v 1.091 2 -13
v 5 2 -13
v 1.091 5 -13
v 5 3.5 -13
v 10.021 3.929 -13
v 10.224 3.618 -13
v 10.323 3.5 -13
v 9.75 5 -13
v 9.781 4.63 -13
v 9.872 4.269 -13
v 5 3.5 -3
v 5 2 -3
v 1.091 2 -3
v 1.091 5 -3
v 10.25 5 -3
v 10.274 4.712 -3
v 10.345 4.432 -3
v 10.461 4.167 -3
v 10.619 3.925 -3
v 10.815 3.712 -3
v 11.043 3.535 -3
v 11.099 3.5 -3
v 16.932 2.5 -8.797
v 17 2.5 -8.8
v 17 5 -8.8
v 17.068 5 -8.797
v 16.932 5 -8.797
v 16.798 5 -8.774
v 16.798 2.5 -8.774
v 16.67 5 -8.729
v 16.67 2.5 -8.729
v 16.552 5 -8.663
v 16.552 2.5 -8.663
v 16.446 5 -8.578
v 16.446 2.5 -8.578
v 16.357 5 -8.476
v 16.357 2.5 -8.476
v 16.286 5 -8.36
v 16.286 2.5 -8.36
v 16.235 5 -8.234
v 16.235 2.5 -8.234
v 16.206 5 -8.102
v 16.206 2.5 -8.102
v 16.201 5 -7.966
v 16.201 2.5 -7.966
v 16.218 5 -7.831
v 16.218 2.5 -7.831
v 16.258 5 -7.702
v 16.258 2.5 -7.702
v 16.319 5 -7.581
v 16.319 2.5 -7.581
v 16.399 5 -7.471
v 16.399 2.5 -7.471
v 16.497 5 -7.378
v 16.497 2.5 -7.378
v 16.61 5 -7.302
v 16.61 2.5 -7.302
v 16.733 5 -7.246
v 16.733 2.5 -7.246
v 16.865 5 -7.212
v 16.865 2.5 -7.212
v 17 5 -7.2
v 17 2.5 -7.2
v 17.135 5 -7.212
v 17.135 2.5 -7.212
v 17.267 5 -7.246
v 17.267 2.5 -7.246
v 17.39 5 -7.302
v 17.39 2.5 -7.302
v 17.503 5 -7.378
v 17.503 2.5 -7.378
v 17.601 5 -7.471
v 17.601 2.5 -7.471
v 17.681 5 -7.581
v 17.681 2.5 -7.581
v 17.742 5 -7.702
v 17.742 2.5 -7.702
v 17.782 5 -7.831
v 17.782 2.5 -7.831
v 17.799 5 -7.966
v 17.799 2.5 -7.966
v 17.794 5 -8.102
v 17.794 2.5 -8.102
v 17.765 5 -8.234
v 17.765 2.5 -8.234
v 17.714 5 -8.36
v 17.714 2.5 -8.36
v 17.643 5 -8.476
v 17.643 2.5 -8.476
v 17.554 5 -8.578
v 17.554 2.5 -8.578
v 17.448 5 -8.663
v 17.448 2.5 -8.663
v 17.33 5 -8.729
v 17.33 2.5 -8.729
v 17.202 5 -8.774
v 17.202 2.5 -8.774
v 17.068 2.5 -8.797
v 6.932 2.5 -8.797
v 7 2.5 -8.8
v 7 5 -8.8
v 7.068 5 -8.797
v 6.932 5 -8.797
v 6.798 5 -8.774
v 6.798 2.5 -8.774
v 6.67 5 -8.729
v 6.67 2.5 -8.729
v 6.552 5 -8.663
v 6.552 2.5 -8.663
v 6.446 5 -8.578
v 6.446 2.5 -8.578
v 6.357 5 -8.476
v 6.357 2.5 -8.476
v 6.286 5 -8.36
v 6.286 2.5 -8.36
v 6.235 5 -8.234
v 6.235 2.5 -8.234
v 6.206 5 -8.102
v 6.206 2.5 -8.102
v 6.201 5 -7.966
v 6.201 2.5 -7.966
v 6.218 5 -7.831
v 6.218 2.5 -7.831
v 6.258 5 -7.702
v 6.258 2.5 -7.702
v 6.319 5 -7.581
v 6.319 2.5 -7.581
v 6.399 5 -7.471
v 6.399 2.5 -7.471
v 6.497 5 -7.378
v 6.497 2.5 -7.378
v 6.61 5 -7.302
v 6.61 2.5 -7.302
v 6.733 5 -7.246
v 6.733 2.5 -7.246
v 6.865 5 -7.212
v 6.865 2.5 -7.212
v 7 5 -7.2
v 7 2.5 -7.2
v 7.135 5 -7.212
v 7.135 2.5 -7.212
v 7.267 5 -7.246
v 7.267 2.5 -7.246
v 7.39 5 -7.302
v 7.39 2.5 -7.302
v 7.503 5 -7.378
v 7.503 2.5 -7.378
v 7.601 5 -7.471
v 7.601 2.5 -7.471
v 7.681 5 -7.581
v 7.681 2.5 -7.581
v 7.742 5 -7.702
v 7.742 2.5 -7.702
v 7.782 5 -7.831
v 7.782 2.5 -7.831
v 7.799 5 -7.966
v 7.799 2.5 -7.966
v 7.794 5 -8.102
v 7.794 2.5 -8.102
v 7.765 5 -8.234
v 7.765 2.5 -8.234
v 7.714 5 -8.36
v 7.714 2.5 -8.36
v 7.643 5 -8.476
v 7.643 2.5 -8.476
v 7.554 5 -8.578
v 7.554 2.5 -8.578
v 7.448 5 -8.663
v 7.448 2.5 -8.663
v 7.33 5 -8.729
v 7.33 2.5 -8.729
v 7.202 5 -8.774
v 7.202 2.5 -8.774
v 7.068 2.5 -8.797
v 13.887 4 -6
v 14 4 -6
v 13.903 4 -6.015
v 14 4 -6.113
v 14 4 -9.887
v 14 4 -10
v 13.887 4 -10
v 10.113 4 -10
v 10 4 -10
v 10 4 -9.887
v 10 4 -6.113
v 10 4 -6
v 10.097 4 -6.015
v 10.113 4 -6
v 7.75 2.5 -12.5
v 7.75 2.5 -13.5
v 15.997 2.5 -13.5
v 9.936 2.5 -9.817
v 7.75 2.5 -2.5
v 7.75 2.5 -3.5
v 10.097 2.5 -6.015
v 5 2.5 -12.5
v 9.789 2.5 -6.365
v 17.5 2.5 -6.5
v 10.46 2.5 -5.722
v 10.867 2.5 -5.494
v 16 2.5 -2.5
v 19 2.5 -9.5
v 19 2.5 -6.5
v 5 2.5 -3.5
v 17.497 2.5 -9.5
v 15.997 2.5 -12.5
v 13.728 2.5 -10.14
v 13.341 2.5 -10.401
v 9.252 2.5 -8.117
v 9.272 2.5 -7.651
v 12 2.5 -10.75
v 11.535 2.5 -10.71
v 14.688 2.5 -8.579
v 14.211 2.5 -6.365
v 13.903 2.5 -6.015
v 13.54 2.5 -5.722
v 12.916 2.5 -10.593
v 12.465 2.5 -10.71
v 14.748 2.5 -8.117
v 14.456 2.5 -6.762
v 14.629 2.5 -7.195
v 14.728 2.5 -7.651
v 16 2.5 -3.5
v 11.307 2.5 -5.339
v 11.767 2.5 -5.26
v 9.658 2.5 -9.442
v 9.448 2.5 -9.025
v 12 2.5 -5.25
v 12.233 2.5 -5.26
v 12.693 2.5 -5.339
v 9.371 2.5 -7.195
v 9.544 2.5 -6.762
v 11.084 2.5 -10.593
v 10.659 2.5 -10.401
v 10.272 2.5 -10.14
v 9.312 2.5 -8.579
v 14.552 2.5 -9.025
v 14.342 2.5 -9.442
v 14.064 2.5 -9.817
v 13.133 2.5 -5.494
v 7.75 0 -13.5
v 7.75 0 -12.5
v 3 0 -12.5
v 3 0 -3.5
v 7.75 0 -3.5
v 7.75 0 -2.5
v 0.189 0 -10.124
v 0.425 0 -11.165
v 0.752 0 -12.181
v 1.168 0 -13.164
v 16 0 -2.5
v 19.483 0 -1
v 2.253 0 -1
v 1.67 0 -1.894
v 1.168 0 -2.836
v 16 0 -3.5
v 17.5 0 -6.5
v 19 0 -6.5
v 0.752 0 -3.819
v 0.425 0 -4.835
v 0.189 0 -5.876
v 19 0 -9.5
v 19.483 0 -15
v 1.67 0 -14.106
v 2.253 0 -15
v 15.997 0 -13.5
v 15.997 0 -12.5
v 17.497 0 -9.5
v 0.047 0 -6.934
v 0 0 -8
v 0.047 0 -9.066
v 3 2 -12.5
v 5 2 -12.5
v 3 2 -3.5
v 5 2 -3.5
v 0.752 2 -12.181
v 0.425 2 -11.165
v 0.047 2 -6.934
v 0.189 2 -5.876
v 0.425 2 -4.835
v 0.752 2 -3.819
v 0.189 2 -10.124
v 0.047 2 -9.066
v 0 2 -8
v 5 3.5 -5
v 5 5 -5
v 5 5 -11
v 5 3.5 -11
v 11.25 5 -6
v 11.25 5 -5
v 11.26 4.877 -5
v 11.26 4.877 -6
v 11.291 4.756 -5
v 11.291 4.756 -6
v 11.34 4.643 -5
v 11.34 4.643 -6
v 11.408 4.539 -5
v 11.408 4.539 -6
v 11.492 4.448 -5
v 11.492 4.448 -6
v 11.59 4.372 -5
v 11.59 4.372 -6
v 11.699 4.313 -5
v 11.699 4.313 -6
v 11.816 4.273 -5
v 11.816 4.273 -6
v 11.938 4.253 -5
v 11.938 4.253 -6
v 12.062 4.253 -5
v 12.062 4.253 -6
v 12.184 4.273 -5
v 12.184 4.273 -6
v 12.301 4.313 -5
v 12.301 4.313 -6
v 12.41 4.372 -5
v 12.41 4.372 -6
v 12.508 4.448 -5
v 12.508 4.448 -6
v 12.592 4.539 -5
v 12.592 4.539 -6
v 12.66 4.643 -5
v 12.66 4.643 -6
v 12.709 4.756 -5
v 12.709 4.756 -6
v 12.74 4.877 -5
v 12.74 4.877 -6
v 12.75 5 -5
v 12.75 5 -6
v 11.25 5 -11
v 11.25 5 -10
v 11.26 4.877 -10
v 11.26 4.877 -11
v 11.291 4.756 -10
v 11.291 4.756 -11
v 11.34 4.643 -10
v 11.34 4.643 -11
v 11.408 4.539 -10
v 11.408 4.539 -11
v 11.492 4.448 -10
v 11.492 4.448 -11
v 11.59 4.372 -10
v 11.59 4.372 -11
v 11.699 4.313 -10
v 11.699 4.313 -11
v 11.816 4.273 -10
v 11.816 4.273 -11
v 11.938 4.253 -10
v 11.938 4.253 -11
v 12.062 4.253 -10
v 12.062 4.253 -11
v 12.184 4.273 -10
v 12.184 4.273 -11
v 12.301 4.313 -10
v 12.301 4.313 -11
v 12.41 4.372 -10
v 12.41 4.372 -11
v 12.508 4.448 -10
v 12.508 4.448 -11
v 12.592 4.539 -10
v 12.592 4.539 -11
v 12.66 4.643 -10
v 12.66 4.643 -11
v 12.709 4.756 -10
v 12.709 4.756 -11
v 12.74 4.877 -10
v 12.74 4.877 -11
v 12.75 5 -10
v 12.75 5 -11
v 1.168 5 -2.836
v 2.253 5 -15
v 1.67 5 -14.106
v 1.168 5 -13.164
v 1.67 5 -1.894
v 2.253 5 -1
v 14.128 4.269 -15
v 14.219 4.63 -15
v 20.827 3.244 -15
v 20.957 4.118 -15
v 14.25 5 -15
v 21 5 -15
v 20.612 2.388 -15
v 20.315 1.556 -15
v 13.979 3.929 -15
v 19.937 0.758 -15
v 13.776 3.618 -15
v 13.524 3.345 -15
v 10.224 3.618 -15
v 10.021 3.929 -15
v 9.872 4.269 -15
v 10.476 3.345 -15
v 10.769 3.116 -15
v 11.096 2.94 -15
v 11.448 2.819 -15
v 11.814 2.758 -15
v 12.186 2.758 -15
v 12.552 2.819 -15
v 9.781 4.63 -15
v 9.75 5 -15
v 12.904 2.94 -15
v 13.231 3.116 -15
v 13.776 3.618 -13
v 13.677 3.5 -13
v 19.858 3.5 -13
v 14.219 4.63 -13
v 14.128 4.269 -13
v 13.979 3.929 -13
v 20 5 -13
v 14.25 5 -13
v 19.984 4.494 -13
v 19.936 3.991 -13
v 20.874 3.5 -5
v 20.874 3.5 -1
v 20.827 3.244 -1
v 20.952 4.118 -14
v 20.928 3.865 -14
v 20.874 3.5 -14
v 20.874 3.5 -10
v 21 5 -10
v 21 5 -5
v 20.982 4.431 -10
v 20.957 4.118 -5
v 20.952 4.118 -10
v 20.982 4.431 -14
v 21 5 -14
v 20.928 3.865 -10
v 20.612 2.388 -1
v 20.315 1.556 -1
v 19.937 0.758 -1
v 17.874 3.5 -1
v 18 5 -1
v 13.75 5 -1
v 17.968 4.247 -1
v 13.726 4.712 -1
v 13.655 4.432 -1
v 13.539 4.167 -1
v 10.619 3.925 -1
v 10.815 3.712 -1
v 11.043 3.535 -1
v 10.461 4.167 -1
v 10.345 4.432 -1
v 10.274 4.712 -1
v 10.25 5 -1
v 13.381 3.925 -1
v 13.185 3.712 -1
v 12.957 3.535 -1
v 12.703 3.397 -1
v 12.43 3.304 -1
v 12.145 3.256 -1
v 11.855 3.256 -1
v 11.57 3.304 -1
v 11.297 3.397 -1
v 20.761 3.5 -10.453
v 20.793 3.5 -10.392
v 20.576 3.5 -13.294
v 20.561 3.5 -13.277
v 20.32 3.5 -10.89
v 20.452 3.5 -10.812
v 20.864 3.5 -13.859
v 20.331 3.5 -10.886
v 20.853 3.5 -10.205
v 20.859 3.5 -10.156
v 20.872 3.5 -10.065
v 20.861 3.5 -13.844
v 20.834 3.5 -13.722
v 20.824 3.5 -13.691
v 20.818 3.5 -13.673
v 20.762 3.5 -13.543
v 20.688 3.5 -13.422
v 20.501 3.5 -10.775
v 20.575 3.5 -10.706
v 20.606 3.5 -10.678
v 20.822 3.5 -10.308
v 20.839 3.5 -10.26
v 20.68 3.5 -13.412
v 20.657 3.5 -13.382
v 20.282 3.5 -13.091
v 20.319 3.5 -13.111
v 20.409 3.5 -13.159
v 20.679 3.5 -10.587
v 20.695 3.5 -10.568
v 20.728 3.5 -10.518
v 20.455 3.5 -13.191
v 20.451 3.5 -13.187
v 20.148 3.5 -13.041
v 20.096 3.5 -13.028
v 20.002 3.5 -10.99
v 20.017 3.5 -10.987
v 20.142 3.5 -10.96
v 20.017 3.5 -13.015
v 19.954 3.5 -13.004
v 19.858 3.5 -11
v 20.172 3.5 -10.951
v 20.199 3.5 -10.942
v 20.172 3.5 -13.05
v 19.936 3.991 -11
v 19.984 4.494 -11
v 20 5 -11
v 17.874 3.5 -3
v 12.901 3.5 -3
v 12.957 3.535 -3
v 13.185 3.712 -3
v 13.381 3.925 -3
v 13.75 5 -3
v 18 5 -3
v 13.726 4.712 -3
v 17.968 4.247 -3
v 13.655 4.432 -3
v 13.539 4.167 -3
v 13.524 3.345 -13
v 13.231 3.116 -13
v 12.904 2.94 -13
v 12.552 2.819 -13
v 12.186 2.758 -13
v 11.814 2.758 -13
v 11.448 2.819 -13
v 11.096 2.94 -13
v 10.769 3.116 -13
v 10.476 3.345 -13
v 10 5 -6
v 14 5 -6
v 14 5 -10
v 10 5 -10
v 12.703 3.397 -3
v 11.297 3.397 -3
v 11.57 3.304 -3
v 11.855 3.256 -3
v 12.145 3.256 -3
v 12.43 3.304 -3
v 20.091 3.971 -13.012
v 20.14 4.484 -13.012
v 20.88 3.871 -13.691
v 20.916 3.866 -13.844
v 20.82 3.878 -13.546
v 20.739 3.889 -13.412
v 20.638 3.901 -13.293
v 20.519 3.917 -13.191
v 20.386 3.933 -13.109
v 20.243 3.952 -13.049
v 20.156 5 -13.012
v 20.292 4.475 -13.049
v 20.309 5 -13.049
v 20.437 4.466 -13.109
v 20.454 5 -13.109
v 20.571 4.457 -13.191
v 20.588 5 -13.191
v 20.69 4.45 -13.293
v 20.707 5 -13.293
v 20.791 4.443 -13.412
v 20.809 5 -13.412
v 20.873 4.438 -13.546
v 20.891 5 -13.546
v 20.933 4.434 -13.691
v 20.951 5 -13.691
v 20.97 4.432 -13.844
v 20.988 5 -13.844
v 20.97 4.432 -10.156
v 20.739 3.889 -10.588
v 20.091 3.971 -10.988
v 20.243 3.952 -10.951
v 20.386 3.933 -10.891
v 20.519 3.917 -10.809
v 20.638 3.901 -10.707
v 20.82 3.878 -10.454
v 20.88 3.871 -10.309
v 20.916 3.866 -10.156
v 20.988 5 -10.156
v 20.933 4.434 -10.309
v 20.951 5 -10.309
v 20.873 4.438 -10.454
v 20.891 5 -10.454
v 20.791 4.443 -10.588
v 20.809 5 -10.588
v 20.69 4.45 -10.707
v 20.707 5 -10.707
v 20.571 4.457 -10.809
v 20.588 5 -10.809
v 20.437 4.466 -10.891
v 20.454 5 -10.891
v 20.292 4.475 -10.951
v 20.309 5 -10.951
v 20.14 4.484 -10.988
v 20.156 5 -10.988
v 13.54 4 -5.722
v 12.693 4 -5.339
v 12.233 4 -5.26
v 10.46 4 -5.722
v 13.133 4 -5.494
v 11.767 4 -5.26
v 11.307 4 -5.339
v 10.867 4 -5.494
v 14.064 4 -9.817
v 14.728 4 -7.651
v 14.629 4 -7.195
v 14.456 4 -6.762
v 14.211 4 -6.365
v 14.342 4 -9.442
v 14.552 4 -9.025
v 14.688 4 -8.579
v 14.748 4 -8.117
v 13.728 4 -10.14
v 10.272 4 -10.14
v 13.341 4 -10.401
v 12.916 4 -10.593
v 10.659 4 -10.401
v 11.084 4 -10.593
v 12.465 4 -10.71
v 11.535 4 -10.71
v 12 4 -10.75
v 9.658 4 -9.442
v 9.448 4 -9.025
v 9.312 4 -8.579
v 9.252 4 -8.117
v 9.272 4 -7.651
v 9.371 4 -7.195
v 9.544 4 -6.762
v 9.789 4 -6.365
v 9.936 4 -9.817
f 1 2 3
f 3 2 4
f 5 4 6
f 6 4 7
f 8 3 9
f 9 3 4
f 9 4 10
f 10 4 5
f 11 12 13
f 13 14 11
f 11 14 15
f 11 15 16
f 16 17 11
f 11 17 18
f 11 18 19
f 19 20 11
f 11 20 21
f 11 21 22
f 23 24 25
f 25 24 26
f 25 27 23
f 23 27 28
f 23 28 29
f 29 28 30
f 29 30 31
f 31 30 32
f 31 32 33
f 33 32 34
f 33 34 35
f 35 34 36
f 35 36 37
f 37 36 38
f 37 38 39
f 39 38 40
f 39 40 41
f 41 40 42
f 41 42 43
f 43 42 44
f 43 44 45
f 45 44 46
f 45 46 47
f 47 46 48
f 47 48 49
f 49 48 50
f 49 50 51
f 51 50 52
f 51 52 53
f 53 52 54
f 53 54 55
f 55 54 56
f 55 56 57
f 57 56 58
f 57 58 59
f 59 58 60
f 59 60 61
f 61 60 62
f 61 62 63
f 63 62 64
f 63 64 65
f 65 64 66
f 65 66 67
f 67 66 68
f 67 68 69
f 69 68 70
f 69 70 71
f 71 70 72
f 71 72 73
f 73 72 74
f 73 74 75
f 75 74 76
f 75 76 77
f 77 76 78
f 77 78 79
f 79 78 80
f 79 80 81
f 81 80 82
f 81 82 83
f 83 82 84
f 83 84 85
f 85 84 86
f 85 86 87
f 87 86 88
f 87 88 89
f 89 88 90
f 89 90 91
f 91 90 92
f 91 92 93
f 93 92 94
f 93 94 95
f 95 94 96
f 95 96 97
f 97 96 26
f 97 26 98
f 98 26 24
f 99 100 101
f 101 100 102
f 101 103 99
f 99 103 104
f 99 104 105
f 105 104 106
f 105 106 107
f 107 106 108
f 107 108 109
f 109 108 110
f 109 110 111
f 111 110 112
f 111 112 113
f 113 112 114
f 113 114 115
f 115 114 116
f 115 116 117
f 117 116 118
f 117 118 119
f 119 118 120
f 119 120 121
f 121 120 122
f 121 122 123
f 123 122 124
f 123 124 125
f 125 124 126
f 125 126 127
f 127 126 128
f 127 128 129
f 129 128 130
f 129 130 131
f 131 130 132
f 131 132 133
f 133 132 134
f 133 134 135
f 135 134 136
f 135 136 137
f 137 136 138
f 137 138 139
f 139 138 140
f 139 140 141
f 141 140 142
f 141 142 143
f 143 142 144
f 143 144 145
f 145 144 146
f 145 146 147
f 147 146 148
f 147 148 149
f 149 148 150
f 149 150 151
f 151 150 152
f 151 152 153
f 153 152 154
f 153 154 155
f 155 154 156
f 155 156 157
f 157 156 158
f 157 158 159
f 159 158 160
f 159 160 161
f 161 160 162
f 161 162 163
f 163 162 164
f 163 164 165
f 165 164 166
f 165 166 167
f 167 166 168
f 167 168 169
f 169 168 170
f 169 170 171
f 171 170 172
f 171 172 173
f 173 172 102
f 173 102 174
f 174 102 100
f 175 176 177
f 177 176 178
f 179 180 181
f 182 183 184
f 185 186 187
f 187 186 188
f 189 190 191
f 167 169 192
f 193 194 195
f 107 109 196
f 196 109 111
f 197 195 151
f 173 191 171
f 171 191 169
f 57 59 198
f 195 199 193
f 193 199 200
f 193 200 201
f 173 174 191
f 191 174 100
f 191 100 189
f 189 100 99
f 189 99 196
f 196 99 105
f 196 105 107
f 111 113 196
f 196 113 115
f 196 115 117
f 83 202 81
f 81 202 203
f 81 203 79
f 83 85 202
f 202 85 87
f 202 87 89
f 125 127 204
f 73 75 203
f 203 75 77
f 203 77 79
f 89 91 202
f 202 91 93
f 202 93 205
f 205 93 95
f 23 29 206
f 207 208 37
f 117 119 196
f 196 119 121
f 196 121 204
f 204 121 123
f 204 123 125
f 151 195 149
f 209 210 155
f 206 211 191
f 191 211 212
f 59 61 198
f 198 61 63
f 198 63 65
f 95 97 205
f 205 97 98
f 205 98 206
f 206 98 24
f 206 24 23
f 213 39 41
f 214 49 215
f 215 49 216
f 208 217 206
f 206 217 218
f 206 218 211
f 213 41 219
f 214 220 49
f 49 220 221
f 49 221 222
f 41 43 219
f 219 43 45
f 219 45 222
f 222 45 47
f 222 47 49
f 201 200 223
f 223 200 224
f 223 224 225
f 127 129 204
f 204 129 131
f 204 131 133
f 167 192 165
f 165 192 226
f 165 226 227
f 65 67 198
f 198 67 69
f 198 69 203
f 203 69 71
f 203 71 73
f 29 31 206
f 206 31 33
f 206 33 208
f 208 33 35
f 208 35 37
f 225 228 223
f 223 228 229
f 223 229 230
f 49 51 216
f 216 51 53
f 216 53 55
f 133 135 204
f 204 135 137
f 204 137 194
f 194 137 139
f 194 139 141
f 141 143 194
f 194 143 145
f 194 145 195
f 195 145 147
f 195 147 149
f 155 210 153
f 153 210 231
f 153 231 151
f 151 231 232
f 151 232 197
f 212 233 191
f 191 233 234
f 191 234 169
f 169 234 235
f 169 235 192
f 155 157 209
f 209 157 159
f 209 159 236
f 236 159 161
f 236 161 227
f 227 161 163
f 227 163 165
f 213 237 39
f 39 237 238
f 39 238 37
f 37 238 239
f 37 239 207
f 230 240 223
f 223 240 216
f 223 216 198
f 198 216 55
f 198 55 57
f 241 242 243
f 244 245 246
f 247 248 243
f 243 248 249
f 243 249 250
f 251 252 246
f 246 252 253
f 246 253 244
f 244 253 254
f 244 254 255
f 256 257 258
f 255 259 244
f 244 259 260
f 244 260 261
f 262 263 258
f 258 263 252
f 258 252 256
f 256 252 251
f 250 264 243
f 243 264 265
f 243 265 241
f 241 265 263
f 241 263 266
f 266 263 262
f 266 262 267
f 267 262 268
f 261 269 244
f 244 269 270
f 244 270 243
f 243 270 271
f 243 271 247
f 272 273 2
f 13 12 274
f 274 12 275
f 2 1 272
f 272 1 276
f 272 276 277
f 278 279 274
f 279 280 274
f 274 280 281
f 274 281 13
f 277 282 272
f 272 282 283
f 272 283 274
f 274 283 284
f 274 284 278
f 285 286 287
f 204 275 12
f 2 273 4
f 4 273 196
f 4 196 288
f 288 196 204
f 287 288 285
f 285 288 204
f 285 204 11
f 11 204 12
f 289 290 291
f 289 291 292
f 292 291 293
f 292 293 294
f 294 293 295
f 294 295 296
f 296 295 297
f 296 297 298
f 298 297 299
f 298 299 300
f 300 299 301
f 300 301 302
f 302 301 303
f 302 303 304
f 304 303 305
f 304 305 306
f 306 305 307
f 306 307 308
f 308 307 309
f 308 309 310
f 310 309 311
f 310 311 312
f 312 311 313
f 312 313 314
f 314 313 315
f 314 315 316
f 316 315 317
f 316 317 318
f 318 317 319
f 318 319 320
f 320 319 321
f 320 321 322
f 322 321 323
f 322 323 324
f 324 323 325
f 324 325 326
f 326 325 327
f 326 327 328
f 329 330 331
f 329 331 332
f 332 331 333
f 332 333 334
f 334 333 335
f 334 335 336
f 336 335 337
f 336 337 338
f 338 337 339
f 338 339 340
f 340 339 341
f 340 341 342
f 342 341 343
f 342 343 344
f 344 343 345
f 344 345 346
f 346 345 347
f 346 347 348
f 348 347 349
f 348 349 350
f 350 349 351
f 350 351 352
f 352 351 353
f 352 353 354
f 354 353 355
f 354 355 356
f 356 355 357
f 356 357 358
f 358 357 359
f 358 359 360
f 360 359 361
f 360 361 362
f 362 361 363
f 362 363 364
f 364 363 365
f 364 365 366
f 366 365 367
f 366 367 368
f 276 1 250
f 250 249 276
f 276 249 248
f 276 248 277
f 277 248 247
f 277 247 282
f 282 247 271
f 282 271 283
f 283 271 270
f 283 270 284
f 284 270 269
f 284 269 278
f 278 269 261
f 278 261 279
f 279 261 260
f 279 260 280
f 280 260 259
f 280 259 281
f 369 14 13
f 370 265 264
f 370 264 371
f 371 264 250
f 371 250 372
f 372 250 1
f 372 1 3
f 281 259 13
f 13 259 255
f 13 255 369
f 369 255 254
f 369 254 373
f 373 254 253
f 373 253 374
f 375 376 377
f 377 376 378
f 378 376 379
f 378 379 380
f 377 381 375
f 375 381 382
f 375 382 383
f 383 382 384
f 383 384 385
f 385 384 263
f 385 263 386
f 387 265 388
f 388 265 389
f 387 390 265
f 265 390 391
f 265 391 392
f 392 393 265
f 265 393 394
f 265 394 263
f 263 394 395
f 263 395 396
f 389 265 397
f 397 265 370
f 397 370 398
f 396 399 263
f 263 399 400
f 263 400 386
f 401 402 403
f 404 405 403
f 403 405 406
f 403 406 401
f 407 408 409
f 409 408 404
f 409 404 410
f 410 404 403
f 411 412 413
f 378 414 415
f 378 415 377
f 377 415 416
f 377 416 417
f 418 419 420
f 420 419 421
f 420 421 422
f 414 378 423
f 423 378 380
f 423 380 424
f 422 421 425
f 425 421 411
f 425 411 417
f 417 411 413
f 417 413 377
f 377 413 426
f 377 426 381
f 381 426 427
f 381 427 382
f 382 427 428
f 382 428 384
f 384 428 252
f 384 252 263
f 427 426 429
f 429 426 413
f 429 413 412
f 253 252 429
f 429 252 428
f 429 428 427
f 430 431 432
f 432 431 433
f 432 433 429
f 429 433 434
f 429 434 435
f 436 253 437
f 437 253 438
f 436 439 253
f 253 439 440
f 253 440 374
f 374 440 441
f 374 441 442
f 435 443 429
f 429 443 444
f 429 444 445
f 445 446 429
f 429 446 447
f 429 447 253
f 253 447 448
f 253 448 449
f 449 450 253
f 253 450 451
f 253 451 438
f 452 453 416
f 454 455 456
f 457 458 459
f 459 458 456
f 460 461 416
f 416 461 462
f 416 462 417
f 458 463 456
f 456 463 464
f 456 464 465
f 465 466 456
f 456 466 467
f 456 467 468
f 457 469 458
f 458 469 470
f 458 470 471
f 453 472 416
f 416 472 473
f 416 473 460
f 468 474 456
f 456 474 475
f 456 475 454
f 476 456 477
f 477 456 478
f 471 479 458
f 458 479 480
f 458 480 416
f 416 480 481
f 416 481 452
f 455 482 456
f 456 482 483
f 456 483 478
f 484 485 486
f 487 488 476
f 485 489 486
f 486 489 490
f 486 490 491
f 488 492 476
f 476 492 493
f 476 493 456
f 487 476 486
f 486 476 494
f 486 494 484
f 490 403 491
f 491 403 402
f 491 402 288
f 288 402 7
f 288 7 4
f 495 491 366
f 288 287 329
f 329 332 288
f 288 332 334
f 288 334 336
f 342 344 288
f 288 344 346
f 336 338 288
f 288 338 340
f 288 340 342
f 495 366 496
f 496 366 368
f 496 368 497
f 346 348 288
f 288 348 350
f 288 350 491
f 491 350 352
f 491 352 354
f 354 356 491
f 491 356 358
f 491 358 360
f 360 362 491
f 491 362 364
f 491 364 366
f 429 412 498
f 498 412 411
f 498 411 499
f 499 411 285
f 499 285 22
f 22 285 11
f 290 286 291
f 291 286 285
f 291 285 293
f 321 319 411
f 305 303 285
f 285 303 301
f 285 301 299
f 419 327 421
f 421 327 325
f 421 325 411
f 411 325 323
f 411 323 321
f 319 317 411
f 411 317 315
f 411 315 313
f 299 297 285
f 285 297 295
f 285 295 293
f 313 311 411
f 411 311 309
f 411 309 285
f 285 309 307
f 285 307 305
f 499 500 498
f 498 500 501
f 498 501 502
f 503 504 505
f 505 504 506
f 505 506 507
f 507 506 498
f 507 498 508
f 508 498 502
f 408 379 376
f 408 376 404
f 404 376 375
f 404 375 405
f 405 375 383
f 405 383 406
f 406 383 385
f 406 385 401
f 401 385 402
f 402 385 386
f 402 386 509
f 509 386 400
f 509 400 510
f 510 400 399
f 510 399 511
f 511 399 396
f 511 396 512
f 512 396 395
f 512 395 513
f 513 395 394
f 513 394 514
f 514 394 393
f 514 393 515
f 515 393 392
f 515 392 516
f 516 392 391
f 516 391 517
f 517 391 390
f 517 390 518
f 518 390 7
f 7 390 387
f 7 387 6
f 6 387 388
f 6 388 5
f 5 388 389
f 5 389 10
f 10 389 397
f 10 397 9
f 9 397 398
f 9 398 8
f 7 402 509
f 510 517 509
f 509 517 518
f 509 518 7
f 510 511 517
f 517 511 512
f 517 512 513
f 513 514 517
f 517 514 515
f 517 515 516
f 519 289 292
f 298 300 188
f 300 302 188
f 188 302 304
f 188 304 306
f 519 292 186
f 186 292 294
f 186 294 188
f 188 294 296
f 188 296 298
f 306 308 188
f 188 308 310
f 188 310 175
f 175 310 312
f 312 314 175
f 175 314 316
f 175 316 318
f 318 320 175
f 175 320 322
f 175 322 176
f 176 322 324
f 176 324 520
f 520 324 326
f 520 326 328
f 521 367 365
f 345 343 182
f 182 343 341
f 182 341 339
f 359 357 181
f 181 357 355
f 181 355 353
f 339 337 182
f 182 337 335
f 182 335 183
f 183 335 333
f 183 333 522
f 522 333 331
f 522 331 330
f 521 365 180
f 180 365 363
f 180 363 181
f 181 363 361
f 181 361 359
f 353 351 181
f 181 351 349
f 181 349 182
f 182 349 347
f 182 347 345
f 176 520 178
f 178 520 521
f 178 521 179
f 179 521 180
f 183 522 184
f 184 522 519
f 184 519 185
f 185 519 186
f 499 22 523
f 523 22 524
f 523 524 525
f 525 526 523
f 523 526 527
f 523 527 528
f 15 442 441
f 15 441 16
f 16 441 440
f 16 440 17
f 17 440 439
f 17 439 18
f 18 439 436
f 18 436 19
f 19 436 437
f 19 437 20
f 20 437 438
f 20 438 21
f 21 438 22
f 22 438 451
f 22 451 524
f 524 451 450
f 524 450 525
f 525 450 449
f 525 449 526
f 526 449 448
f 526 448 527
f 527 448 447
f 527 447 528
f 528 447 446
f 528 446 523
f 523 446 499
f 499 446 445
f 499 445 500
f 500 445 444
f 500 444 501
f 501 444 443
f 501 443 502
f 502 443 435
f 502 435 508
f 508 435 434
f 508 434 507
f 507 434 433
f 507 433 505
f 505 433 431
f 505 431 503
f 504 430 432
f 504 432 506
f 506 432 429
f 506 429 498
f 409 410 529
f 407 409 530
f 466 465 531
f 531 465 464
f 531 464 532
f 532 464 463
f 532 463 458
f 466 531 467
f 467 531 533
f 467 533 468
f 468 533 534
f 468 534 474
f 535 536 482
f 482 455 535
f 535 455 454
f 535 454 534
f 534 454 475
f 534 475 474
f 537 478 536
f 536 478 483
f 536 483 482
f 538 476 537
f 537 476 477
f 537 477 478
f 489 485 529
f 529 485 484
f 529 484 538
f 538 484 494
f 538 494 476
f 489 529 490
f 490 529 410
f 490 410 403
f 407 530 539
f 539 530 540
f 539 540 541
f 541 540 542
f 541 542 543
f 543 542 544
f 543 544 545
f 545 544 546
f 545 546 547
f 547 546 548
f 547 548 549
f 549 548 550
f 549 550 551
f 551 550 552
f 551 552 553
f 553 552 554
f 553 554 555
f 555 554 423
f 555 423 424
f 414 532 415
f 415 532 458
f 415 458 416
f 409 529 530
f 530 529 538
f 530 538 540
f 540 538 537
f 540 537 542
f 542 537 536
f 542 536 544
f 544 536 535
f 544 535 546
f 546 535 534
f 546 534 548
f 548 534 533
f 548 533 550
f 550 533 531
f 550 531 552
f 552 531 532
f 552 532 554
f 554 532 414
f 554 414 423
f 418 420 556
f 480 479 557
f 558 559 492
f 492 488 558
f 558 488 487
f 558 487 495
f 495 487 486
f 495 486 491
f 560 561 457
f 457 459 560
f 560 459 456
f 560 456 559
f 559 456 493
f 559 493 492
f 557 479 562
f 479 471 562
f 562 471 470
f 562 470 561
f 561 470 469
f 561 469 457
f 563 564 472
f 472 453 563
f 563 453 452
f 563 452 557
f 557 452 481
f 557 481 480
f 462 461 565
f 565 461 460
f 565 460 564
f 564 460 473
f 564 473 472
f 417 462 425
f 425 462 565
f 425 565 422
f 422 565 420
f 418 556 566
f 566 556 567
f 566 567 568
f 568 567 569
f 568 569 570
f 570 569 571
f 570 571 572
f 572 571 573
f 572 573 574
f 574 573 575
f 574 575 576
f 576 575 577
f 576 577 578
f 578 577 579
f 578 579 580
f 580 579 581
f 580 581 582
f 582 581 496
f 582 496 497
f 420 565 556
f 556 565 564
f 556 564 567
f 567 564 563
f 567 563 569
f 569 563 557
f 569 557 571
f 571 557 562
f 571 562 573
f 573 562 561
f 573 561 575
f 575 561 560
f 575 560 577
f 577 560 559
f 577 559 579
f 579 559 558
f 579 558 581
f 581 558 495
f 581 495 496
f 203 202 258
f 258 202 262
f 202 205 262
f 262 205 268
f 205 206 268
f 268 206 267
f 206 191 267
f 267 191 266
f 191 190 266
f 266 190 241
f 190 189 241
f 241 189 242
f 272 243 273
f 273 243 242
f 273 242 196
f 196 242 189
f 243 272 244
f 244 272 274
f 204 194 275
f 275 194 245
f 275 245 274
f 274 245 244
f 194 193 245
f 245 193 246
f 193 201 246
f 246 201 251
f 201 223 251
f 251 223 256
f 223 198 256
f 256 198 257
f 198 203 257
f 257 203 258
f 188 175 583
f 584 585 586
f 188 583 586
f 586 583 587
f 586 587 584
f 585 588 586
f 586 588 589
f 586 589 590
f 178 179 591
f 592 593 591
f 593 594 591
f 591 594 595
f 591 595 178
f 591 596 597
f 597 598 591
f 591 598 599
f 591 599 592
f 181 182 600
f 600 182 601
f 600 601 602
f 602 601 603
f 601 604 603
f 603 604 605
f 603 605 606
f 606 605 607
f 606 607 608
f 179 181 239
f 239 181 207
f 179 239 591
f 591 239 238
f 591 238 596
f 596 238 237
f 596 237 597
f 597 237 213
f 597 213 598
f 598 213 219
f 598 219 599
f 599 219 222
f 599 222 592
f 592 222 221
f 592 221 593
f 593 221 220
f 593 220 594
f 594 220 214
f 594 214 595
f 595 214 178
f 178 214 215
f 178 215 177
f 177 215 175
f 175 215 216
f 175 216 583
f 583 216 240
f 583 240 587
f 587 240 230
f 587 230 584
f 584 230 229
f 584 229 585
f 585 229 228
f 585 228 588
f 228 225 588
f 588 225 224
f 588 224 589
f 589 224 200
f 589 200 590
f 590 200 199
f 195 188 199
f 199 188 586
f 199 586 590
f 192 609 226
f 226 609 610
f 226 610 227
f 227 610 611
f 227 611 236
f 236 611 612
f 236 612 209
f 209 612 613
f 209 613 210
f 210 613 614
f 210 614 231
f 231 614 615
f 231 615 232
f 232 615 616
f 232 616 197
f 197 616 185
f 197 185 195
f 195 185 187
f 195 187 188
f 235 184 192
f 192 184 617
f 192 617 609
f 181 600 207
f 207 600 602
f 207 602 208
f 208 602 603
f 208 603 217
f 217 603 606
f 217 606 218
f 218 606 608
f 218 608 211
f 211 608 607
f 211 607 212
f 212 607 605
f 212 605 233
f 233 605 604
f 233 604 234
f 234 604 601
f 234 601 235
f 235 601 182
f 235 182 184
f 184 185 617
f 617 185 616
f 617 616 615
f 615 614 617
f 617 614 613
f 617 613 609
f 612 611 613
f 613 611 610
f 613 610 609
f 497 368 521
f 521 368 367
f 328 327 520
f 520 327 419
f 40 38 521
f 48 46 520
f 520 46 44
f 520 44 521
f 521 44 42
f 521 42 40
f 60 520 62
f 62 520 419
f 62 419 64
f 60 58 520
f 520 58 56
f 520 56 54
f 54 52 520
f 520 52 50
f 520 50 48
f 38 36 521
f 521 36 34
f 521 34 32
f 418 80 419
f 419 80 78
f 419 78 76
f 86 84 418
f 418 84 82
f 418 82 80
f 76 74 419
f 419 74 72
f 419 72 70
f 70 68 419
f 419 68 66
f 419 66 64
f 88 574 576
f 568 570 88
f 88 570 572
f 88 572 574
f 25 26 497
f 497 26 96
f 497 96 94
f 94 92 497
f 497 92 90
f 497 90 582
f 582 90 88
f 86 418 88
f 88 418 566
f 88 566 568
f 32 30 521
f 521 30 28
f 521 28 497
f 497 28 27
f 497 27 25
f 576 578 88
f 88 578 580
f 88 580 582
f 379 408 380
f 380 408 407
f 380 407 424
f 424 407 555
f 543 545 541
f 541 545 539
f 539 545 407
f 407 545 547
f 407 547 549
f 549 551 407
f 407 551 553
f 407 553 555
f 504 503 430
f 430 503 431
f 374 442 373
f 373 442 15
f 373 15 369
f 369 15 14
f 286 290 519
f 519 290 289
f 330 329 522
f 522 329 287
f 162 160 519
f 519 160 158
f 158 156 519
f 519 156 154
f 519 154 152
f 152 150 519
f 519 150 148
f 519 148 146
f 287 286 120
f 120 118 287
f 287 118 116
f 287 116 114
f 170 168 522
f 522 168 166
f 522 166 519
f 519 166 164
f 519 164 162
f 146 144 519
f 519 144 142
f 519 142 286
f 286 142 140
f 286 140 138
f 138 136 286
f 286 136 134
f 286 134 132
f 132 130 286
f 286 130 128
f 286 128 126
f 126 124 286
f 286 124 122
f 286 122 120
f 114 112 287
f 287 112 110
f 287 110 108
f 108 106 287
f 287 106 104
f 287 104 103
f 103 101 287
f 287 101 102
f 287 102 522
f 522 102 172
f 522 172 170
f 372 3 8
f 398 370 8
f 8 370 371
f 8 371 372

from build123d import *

# Parameters (mm, degrees)
BOSS_EXTRUDE1_DEPTH = 10
CUT_EXTRUDE3_DEPTH  = 28.676705006
CUT_EXTRUDE6_START  = -13
CUT_EXTRUDE6_DEPTH  = 2
CUT_EXTRUDE14_START = -3
CUT_EXTRUDE14_DEPTH = 2
CUT_EXTRUDE7_START  = 10
SKETCH8_R           = 2.75
CUT_EXTRUDE7_DEPTH  = 2
CUT_EXTRUDE8_START  = -16
SKETCH10_R          = 2.25
CUT_EXTRUDE8_DEPTH  = 3
CUT_EXTRUDE9_DEPTH  = 5
SKETCH18_R          = 0.75
CUT_EXTRUDE12_DEPTH = 28.676705006
CUT_EXTRUDE13_START = 5
SKETCH19_W          = 4
SKETCH19_H          = 4
CUT_EXTRUDE13_DEPTH = 1
CUT_EXTRUDE15_START = -1
SKETCH5_R           = 1.75
CUT_EXTRUDE15_DEPTH = 2
CUT_EXTRUDE16_START = -1
CUT_EXTRUDE16_DEPTH = 2
FILLET2_R           = 0.5
FILLET3_R           = 1
POT_INSERT_DEPTH    = 2.5
POT_START           = 4
SKETCH6_R           = 2.75
POT_HOLE_DEPTH      = 1.5
SCREW_START         = 11
SKETCH14_R          = 0.8
SCREW_HOLES_DEPTH   = 9
SCREW_START_2       = 10
SKETCH15_R          = 1.25
SCREW_HEADS_DEPTH   = 2
CUT_EXTRUDE11_START = 10
SKETCH13_W          = 21
SKETCH13_H          = 15
CUT_EXTRUDE11_DEPTH = 5


with BuildPart() as part:
    # Sketch1 → Boss-Extrude1 (new body)
    with BuildSketch(Plane(origin=(0, 0, 0), x_dir=(1, 0, 0), z_dir=(0, 1, 0))):
        with BuildLine():
            Line((21, 15), (21, 8))
            Line((21, 8), (21, 1))
            Line((21, 1), (12, 1))
            Line((12, 1), (2.253205655, 1))
            ThreePointArc((2.253205655, 1), (0, 8), (2.253205655, 15))
            Line((2.253205655, 15), (12, 15))
            Line((12, 15), (21, 15))
        make_face()
    extrude(amount=BOSS_EXTRUDE1_DEPTH)

    # Sketch4 → Cut-Extrude3 (cut, through all)
    with BuildSketch(Plane.XY):
        with BuildLine():
            Line((21, 14), (12, 14))
            ThreePointArc((12, 14), (18.363961031, 11.363961031), (21, 5))
            Line((21, 5), (21, 14))
        make_face()
        with BuildLine():
            Line((21, -4), (21, 5))
            ThreePointArc((21, 5), (18.363961031, -1.363961031), (12, -4))
            Line((12, -4), (21, -4))
        make_face()
    extrude(amount=-CUT_EXTRUDE3_DEPTH, mode=Mode.SUBTRACT)

    # Sketch7 → Cut-Extrude6 (cut)
    with BuildSketch(Plane.XY.offset(CUT_EXTRUDE6_START)):
        Polygon((21, 5.5), (21, 11), (10, 11), (10, 7.5), (0, 7.5), (0, 3.5), (21, 3.5), align=None)
    extrude(amount=CUT_EXTRUDE6_DEPTH, mode=Mode.SUBTRACT)

    # Sketch21 → Cut-Extrude14 (cut)
    with BuildSketch(Plane.XY.offset(CUT_EXTRUDE14_START)):
        Polygon((21, 5.5), (21, 11), (10, 11), (10, 7.5), (0, 7.5), (0, 3.5), (21, 3.5), align=None)
    extrude(amount=-CUT_EXTRUDE14_DEPTH, mode=Mode.SUBTRACT)

    # Sketch8 → Cut-Extrude7 (cut)
    with BuildSketch(Plane(origin=(0, 0, 0), x_dir=(1, 0, 0), z_dir=(0, 1, 0)).offset(CUT_EXTRUDE7_START)):
        with Locations(Location((12, 8, 0), (0, 0, 270))):
            Circle(SKETCH8_R)
    extrude(amount=-CUT_EXTRUDE7_DEPTH, mode=Mode.SUBTRACT)

    # Sketch10 → Cut-Extrude8 (cut)
    with BuildSketch(Plane.XY.offset(CUT_EXTRUDE8_START)):
        with Locations(Location((12, 5, 0), (0, 0, 221.810314896))):
            Circle(SKETCH10_R)
    extrude(amount=CUT_EXTRUDE8_DEPTH, mode=Mode.SUBTRACT)

    # Sketch11 → Cut-Extrude9 (cut)
    with BuildSketch(Plane(origin=(0, 0, 0), x_dir=(0, 0, -1), z_dir=(1, 0, 0))):
        Polygon((8, 2), (13, 2), (13, 8), (3, 8), (3, 2), align=None)
    extrude(amount=CUT_EXTRUDE9_DEPTH, mode=Mode.SUBTRACT)

    # Sketch18 → Cut-Extrude12 (cut, through all)
    with BuildSketch(Plane.XY):
        with Locations((12, 5)):
            Circle(SKETCH18_R)
    extrude(amount=-CUT_EXTRUDE12_DEPTH, mode=Mode.SUBTRACT)

    # Sketch19 → Cut-Extrude13 (cut, symmetric)
    with BuildSketch(Plane(origin=(0, 0, 0), x_dir=(1, 0, 0), z_dir=(0, 1, 0)).offset(CUT_EXTRUDE13_START)):
        with Locations((12, 8)):
            Rectangle(SKETCH19_W, SKETCH19_H)
    extrude(amount=CUT_EXTRUDE13_DEPTH, both=True, mode=Mode.SUBTRACT)

    # Sketch5 → Cut-Extrude15 (cut)
    with BuildSketch(Plane.XY.offset(CUT_EXTRUDE15_START)):
        with Locations((12, 5)):
            Circle(SKETCH5_R)
    extrude(amount=-CUT_EXTRUDE15_DEPTH, mode=Mode.SUBTRACT)

    # Sketch26 → Cut-Extrude16 (cut)
    with BuildSketch(Plane.XY.offset(CUT_EXTRUDE16_START)):
        with BuildLine():
            Line((16.483314774, 10), (19.483314774, 10))
            ThreePointArc((19.483314774, 10), (20.800790614, 6.883105034), (20.874119675, 3.5))
            Line((20.874119675, 3.5), (17.874119675, 3.5))
            ThreePointArc((17.874119675, 3.5), (17.800790614, 6.883105034), (16.483314774, 10))
        make_face()
    extrude(amount=-CUT_EXTRUDE16_DEPTH, mode=Mode.SUBTRACT)

    # Fillet2
    fillet2_edges = [part.edges().sort_by_distance(p)[0] for p in [
        (12, 8, -10.75),
    ]]
    fillet(fillet2_edges, radius=FILLET2_R)

    # Fillet3
    # the kernel refuses this fillet: 1 mm, written as the material it takes off along each edge
    with BuildSketch(Plane(origin=(12, 5, -13), x_dir=(0.6472427025312245, 0.7622839917118008, 0), z_dir=(-0.7622839917118008, 0.6472427025312245, 0))) as fillet3_piece_1_section:
        with BuildLine():
            CenterArc((9 - FILLET3_R, FILLET3_R), FILLET3_R, 270, 90)
            Line((9 - FILLET3_R, 0), (9, 0))
            Line((9, 0), (9, FILLET3_R))
        make_face()
    fillet3_piece_1 = revolve(axis=Axis((12, 5, -13), (0, 0, -1)), revolution_arc=75.177010416, mode=Mode.PRIVATE)
    fillet3_piece_1 = split(fillet3_piece_1, bisect_by=Plane(origin=(20.22008164, 3.5, -13.28352735), z_dir=(0, 1, 0)), keep=Keep.TOP, mode=Mode.PRIVATE)
    add(fillet3_piece_1, mode=Mode.SUBTRACT)
    with BuildSketch(Plane(origin=(12, 5, -11), x_dir=(0.9025022770828605, -0.43068508200337235, 0), z_dir=(-0.43068508200337235, -0.9025022770828605, 0))) as fillet3_piece_2_section:
        with BuildLine():
            CenterArc((9 - FILLET3_R, FILLET3_R), FILLET3_R, 270, 90)
            Line((9 - FILLET3_R, 0), (9, 0))
            Line((9, 0), (9, FILLET3_R))
        make_face()
    fillet3_piece_2 = revolve(axis=Axis((12, 5, -11), (0, 0, 1)), revolution_arc=75.177010416, mode=Mode.PRIVATE)
    fillet3_piece_2 = split(fillet3_piece_2, bisect_by=Plane(origin=(20.220081643, 3.5, -10.716472653), z_dir=(0, 1, 0)), keep=Keep.TOP, mode=Mode.PRIVATE)
    add(fillet3_piece_2, mode=Mode.SUBTRACT)
    with BuildSketch(Plane(origin=(21.983314774, 10, -11), x_dir=(0, 0, 1), z_dir=(-1, 0, 0))) as fillet3_piece_3:
        with BuildLine():
            CenterArc((FILLET3_R, -FILLET3_R), FILLET3_R, 90, 90)
            Line((0, -FILLET3_R), (0, 0))
            Line((0, 0), (FILLET3_R, 0))
        make_face()
    extrude(amount=11.983314774, mode=Mode.SUBTRACT)
    with BuildSketch(Plane(origin=(21.983314774, 10, -13), x_dir=(0, 0, -1), z_dir=(-1, 0, 0))) as fillet3_piece_4:
        with BuildLine():
            CenterArc((FILLET3_R, FILLET3_R), FILLET3_R, 180, 90)
            Line((0, FILLET3_R), (0, 0))
            Line((0, 0), (FILLET3_R, 0))
        make_face()
    extrude(amount=11.983314774, mode=Mode.SUBTRACT)

    # Sketch3 → Pot Insert (cut)
    with BuildSketch(Plane(origin=(28.28760271, 0, 0), x_dir=(1, 0, 0), z_dir=(0, 1, 0))):
        Polygon((-25.28760271, 12.5), (-20.53760271, 12.5), (-20.53760271, 13.5), (-16.28760271, 13.5), (-12.291072924, 13.5), (-12.291072924, 12.500096395), (-10.791072924, 9.500096395), (-9.28760271, 9.500096395), (-9.28760271, 8), (-9.28760271, 6.5), (-10.78760271, 6.5), (-12.28760271, 3.5), (-12.28760271, 2.5), (-16.28760271, 2.5), (-20.53760271, 2.5), (-20.53760271, 3.5), (-25.28760271, 3.5), (-25.28760271, 8), align=None)
    extrude(amount=POT_INSERT_DEPTH, mode=Mode.SUBTRACT)

    # Sketch6 → Pot Hole (cut)
    with BuildSketch(Plane(origin=(0, 0, 0), x_dir=(1, 0, 0), z_dir=(0, 1, 0)).offset(POT_START)):
        with Locations(Location((12, 8, 0), (0, 0, 270))):
            Circle(SKETCH6_R)
    extrude(amount=-POT_HOLE_DEPTH, mode=Mode.SUBTRACT)

    # Sketch14 → Screw Holes (cut)
    with BuildSketch(Plane(origin=(0, 0, 0), x_dir=(1, 0, 0), z_dir=(0, 1, 0)).offset(SCREW_START)):
        with Locations(Location((7, 8, 0), (0, 0, 270))):
            Circle(SKETCH14_R)
        with Locations(Location((17, 8, 0), (0, 0, 270))):
            Circle(SKETCH14_R)
    extrude(amount=-SCREW_HOLES_DEPTH, mode=Mode.SUBTRACT)

    # Sketch15 → Screw Heads (cut)
    with BuildSketch(Plane(origin=(0, 0, 0), x_dir=(1, 0, 0), z_dir=(0, 1, 0)).offset(SCREW_START_2)):
        with Locations(Location((7, 8, 0), (0, 0, 270))):
            Circle(SKETCH15_R)
        with Locations(Location((17, 8, 0), (0, 0, 270))):
            Circle(SKETCH15_R)
    extrude(amount=-SCREW_HEADS_DEPTH, mode=Mode.SUBTRACT)

    # Sketch13 → Cut-Extrude11 (cut)
    with BuildSketch(Plane(origin=(0, 0, 0), x_dir=(1, 0, 0), z_dir=(0, 1, 0)).offset(CUT_EXTRUDE11_START)):
        with Locations((10.5, 7.5)):
            Rectangle(SKETCH13_W, SKETCH13_H)
    extrude(amount=-CUT_EXTRUDE11_DEPTH, mode=Mode.SUBTRACT)


solid = part.part
